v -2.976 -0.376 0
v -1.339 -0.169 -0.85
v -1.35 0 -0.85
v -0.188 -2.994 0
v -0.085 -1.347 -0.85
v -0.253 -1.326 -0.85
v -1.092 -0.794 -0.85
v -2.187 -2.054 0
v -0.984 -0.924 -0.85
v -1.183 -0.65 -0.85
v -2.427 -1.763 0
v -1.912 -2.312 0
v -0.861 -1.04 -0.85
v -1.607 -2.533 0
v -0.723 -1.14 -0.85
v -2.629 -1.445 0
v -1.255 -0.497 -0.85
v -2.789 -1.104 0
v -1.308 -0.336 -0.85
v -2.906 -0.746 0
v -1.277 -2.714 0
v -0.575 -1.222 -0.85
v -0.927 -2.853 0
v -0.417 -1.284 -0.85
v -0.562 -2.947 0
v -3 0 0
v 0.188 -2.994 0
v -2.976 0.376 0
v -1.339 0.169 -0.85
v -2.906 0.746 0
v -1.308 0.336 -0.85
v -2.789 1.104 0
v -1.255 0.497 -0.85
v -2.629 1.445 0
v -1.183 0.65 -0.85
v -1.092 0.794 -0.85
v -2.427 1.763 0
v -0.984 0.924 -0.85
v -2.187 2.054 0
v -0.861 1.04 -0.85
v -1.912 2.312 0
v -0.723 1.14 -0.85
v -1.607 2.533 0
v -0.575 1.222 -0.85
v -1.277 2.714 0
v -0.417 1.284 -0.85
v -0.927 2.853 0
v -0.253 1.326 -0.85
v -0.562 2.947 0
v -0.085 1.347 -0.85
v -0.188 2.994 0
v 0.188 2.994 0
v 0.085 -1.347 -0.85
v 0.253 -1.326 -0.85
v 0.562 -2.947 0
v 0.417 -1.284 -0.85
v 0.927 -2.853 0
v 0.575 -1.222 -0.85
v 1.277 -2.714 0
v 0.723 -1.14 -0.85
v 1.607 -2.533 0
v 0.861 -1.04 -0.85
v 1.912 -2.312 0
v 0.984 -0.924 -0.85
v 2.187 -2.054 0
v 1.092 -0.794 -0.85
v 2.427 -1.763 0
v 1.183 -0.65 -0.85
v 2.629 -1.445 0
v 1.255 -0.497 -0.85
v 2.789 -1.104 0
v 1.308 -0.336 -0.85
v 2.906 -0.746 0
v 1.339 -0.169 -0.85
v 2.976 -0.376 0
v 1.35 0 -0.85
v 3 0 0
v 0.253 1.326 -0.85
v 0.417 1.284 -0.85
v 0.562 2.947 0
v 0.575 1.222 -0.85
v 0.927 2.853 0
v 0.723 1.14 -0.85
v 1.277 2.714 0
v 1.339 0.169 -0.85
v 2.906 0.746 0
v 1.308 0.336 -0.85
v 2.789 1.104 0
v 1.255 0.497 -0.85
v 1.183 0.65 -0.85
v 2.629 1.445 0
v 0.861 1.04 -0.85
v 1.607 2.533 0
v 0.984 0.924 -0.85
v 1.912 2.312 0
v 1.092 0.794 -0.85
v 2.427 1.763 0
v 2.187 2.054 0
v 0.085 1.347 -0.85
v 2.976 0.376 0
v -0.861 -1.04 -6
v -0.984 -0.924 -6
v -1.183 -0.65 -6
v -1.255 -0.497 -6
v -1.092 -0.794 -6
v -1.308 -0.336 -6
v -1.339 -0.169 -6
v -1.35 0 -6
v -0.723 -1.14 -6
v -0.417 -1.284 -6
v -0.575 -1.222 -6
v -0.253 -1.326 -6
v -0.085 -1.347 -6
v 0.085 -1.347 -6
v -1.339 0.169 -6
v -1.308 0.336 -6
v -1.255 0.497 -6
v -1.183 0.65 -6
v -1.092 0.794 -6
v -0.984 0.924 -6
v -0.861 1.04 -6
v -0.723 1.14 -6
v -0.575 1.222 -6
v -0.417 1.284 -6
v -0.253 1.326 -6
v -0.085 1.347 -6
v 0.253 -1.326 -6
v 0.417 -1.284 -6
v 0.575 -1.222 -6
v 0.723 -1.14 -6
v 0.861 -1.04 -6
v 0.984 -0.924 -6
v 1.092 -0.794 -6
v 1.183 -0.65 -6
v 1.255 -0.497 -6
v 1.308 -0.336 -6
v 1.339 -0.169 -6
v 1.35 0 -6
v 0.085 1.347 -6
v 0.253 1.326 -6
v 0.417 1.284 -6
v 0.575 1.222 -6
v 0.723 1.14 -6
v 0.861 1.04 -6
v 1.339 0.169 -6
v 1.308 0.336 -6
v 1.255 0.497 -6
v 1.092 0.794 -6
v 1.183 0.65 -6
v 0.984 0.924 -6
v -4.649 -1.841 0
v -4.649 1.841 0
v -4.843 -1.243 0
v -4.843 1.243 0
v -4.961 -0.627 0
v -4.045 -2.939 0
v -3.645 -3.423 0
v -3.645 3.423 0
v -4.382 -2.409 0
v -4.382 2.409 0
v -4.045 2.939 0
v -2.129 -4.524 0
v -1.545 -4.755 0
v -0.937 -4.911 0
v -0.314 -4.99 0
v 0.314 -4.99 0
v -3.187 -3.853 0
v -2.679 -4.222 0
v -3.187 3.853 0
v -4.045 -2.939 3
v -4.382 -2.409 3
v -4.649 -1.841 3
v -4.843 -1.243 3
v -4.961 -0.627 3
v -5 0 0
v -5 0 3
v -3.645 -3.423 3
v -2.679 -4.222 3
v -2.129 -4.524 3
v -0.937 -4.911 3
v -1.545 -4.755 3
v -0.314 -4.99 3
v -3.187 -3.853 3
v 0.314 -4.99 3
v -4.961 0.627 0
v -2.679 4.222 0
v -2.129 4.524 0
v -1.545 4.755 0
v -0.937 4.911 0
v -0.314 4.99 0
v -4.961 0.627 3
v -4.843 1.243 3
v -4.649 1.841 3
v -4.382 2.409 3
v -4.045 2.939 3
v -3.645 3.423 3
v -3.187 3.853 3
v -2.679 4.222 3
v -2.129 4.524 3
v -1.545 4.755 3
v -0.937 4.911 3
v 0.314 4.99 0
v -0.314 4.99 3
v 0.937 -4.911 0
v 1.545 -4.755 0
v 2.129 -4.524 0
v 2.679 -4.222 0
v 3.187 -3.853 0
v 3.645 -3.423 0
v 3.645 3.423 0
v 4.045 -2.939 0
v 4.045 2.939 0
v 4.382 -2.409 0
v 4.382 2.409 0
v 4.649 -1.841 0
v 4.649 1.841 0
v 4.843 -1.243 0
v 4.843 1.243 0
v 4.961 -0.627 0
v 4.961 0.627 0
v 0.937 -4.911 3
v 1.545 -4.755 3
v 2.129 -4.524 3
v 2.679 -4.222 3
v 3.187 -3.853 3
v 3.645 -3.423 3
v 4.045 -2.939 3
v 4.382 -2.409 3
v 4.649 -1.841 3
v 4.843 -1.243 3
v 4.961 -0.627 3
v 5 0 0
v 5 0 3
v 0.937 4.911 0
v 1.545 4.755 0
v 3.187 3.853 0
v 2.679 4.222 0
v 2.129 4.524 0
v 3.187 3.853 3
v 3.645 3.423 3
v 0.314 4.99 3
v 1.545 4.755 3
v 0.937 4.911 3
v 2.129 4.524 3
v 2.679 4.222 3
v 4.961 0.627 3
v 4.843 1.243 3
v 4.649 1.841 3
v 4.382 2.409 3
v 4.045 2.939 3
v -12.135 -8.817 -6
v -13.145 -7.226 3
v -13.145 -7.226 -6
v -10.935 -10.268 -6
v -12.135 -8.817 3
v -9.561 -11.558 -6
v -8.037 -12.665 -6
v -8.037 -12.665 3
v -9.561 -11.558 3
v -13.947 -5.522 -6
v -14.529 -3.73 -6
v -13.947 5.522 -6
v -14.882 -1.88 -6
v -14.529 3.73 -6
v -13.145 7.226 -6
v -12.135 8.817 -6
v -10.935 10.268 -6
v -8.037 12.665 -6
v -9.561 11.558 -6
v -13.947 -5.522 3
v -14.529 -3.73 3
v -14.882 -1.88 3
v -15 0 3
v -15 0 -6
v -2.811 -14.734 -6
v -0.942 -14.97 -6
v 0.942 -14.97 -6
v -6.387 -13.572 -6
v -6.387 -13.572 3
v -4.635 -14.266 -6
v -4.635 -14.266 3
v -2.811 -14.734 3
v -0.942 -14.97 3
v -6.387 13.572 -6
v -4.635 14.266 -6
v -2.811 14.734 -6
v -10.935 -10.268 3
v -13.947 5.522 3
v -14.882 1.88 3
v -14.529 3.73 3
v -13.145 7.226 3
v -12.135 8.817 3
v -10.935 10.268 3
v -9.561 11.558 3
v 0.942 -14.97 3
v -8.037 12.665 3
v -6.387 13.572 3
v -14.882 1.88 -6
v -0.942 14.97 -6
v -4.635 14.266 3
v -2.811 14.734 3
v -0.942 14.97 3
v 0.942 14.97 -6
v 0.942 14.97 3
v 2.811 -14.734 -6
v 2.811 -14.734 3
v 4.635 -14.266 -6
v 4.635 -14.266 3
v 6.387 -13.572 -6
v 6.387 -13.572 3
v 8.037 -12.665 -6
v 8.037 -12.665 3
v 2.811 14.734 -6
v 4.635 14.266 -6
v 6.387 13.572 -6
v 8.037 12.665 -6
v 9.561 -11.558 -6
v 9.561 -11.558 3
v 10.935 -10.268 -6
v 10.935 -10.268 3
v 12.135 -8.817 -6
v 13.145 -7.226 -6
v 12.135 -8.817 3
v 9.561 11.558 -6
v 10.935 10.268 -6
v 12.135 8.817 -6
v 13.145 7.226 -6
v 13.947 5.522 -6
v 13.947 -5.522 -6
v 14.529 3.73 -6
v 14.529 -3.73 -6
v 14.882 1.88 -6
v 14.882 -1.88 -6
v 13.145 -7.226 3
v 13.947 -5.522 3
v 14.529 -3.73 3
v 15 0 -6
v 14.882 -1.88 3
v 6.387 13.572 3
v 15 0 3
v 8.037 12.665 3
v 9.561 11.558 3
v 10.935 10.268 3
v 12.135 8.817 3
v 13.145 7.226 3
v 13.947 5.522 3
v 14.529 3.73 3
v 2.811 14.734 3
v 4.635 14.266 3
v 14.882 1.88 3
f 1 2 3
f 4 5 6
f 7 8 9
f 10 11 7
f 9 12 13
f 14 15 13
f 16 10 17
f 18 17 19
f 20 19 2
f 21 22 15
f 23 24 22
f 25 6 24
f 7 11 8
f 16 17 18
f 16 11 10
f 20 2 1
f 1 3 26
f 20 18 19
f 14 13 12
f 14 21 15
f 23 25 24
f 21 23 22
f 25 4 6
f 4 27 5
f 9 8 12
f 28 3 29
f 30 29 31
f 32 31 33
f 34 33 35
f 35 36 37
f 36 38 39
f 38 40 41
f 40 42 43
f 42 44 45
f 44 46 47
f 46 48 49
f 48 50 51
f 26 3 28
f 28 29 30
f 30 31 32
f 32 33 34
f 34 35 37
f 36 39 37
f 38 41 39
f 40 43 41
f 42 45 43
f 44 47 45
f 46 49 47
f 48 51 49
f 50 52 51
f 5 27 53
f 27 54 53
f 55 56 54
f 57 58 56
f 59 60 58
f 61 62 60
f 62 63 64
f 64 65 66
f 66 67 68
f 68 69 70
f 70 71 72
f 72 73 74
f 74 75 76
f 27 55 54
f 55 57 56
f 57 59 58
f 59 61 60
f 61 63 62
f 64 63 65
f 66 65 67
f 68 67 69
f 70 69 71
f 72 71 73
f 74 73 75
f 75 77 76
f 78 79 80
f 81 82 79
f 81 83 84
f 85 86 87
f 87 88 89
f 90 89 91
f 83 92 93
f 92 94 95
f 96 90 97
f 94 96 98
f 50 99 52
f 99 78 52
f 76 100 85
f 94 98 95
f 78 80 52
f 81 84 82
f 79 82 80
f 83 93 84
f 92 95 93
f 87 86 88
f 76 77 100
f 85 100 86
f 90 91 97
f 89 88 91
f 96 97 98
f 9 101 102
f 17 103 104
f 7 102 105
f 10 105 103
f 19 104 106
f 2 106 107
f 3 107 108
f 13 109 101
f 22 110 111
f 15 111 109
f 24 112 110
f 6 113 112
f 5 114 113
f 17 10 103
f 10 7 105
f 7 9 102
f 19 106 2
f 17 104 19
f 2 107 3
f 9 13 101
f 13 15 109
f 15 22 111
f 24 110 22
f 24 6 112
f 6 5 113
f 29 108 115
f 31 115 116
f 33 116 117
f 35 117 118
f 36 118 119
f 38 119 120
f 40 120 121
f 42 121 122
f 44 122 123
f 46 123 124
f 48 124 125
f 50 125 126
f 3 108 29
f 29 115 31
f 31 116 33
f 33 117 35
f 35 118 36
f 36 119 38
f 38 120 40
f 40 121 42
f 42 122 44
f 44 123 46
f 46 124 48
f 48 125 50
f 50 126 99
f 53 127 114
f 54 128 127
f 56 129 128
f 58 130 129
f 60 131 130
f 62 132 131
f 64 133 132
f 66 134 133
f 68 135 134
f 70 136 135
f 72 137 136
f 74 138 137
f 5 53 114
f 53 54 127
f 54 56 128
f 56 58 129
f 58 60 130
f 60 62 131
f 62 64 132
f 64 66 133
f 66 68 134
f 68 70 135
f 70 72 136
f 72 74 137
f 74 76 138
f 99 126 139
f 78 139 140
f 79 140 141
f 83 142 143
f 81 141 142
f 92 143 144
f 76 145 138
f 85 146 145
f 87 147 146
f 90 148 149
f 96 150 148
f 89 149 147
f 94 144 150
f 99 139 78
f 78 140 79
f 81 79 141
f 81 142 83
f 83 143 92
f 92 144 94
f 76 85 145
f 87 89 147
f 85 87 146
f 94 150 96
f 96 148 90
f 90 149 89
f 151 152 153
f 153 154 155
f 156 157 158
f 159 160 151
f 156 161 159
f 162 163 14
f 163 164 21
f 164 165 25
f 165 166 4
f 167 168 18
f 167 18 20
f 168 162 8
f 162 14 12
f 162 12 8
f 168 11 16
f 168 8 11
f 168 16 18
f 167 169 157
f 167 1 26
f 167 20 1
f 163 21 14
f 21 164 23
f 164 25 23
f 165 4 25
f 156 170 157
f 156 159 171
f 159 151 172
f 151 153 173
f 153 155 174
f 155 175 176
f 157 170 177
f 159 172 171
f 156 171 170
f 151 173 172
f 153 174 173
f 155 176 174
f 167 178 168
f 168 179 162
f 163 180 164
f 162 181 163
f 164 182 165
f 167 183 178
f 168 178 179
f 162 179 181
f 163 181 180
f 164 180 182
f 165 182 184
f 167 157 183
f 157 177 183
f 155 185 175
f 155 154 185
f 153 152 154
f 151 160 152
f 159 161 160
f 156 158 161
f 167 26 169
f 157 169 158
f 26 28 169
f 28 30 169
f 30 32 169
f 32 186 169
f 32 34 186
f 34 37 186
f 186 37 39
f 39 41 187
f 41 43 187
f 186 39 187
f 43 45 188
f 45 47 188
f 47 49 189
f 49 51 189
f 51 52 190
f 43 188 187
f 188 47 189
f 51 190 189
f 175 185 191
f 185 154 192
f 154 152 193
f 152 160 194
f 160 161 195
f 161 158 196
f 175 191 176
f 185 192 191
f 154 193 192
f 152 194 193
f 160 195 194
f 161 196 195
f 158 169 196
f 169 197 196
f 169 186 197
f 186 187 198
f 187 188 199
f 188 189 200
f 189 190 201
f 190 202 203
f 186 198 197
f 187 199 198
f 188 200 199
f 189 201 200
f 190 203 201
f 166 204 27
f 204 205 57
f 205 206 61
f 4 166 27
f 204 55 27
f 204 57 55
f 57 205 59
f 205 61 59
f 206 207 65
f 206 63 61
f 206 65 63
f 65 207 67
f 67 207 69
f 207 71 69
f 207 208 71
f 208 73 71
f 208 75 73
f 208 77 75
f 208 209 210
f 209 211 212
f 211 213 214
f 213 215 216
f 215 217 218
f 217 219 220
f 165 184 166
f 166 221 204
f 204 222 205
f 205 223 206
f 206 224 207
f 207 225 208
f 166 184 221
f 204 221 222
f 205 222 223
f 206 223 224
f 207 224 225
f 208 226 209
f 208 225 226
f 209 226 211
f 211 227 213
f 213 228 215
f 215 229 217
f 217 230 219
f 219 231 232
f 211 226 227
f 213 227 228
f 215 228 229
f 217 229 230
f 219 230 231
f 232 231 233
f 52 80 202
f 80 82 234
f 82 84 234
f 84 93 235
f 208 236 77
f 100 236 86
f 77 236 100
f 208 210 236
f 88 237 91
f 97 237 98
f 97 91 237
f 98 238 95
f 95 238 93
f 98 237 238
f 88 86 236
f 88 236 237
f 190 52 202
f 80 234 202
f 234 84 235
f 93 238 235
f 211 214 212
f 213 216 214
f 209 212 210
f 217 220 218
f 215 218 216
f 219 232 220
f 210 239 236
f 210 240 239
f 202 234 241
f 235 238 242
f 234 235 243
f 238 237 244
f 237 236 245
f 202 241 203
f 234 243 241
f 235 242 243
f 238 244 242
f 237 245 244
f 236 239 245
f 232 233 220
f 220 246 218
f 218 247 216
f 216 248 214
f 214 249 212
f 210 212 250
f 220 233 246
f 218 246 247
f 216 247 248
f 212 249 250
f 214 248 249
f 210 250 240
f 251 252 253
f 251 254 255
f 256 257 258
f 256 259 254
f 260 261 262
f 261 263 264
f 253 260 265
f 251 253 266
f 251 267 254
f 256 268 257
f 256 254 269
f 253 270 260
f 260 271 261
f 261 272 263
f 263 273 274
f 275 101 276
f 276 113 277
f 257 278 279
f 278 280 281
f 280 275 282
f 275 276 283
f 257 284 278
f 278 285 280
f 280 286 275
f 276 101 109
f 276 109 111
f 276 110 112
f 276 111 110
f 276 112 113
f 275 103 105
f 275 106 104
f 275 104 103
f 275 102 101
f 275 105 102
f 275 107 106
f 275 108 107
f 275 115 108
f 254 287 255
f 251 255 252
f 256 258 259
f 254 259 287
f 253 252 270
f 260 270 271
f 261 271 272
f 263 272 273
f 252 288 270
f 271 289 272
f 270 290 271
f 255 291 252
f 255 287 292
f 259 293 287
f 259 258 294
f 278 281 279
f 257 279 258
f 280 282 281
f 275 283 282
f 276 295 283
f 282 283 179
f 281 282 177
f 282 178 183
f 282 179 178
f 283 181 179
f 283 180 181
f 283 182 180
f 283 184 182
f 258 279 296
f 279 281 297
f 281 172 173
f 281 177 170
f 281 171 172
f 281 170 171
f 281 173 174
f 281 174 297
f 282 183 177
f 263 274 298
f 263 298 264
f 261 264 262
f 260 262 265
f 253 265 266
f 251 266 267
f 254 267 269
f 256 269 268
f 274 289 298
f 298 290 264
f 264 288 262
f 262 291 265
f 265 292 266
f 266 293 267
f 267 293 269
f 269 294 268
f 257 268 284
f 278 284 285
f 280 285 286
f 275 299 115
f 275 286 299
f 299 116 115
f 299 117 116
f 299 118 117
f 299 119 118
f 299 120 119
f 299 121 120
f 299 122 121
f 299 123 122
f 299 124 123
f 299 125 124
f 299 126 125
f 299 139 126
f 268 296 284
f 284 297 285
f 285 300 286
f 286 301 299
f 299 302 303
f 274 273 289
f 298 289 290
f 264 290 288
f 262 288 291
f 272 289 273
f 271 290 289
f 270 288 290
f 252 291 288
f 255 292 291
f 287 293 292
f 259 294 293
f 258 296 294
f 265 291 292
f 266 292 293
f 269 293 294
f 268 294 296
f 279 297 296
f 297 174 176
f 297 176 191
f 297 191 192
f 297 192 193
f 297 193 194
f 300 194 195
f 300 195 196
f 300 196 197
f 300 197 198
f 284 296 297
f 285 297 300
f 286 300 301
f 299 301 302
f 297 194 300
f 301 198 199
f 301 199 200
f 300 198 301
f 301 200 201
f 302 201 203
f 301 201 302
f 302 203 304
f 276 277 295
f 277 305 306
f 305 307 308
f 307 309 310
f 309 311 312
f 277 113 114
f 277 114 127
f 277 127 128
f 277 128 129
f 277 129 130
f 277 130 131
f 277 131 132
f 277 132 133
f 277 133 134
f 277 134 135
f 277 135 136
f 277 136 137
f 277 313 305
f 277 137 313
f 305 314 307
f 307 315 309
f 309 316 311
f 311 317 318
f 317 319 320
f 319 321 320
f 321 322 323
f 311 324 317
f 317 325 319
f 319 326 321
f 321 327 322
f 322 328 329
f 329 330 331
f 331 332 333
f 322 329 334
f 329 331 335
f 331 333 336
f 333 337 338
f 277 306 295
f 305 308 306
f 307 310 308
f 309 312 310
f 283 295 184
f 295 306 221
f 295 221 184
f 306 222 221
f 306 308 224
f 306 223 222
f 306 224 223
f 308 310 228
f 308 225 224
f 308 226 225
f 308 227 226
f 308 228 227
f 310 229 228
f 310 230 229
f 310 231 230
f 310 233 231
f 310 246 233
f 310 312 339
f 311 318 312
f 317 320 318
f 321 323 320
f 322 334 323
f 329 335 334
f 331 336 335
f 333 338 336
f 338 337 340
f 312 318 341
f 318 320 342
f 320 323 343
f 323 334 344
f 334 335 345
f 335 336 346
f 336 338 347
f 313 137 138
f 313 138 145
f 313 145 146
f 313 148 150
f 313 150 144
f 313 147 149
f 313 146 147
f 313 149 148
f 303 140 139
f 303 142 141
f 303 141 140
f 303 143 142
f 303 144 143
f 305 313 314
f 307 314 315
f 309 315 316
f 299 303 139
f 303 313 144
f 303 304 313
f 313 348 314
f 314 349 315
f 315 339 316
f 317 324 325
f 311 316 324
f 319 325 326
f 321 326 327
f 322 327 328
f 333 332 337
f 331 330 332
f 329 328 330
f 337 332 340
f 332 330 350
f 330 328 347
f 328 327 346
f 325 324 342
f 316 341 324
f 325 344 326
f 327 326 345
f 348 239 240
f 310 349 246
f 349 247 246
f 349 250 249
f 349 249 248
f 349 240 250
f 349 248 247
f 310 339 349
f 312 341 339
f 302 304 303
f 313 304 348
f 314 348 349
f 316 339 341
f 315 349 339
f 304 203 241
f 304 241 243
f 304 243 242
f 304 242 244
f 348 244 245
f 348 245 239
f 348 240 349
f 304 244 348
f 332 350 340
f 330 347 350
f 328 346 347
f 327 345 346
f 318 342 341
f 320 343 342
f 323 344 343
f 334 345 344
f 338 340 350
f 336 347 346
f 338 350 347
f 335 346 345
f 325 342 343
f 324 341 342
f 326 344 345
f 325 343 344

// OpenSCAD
$fn = 50;

difference() {
	union() {
		translate(v = [0, 0, -6.0]) {
			cylinder(h = 9, r = 15.0);
		}
	}
	union() {
		translate(v = [0, 0, 0]) {
			rotate(a = [0, 0, 0]) {
				difference() {
					union() {
						translate(v = [0, 0, -9.0]) {
							cylinder(h = 9, r = 1.0);
						}
						translate(v = [0, 0, -0.85]) {
							cylinder(h = 0.85, r1 = 1.35, r2 = 3.0);
						}
						translate(v = [0, 0, -9.0]) {
							cylinder(h = 9, r = 1.35);
						}
						translate(v = [0, 0, -9.0]) {
							cylinder(h = 9, r = 1.0);
						}
					}
					union();
				}
			}
		}
		#cylinder(h = 3, r = 5.0);
	}
}
